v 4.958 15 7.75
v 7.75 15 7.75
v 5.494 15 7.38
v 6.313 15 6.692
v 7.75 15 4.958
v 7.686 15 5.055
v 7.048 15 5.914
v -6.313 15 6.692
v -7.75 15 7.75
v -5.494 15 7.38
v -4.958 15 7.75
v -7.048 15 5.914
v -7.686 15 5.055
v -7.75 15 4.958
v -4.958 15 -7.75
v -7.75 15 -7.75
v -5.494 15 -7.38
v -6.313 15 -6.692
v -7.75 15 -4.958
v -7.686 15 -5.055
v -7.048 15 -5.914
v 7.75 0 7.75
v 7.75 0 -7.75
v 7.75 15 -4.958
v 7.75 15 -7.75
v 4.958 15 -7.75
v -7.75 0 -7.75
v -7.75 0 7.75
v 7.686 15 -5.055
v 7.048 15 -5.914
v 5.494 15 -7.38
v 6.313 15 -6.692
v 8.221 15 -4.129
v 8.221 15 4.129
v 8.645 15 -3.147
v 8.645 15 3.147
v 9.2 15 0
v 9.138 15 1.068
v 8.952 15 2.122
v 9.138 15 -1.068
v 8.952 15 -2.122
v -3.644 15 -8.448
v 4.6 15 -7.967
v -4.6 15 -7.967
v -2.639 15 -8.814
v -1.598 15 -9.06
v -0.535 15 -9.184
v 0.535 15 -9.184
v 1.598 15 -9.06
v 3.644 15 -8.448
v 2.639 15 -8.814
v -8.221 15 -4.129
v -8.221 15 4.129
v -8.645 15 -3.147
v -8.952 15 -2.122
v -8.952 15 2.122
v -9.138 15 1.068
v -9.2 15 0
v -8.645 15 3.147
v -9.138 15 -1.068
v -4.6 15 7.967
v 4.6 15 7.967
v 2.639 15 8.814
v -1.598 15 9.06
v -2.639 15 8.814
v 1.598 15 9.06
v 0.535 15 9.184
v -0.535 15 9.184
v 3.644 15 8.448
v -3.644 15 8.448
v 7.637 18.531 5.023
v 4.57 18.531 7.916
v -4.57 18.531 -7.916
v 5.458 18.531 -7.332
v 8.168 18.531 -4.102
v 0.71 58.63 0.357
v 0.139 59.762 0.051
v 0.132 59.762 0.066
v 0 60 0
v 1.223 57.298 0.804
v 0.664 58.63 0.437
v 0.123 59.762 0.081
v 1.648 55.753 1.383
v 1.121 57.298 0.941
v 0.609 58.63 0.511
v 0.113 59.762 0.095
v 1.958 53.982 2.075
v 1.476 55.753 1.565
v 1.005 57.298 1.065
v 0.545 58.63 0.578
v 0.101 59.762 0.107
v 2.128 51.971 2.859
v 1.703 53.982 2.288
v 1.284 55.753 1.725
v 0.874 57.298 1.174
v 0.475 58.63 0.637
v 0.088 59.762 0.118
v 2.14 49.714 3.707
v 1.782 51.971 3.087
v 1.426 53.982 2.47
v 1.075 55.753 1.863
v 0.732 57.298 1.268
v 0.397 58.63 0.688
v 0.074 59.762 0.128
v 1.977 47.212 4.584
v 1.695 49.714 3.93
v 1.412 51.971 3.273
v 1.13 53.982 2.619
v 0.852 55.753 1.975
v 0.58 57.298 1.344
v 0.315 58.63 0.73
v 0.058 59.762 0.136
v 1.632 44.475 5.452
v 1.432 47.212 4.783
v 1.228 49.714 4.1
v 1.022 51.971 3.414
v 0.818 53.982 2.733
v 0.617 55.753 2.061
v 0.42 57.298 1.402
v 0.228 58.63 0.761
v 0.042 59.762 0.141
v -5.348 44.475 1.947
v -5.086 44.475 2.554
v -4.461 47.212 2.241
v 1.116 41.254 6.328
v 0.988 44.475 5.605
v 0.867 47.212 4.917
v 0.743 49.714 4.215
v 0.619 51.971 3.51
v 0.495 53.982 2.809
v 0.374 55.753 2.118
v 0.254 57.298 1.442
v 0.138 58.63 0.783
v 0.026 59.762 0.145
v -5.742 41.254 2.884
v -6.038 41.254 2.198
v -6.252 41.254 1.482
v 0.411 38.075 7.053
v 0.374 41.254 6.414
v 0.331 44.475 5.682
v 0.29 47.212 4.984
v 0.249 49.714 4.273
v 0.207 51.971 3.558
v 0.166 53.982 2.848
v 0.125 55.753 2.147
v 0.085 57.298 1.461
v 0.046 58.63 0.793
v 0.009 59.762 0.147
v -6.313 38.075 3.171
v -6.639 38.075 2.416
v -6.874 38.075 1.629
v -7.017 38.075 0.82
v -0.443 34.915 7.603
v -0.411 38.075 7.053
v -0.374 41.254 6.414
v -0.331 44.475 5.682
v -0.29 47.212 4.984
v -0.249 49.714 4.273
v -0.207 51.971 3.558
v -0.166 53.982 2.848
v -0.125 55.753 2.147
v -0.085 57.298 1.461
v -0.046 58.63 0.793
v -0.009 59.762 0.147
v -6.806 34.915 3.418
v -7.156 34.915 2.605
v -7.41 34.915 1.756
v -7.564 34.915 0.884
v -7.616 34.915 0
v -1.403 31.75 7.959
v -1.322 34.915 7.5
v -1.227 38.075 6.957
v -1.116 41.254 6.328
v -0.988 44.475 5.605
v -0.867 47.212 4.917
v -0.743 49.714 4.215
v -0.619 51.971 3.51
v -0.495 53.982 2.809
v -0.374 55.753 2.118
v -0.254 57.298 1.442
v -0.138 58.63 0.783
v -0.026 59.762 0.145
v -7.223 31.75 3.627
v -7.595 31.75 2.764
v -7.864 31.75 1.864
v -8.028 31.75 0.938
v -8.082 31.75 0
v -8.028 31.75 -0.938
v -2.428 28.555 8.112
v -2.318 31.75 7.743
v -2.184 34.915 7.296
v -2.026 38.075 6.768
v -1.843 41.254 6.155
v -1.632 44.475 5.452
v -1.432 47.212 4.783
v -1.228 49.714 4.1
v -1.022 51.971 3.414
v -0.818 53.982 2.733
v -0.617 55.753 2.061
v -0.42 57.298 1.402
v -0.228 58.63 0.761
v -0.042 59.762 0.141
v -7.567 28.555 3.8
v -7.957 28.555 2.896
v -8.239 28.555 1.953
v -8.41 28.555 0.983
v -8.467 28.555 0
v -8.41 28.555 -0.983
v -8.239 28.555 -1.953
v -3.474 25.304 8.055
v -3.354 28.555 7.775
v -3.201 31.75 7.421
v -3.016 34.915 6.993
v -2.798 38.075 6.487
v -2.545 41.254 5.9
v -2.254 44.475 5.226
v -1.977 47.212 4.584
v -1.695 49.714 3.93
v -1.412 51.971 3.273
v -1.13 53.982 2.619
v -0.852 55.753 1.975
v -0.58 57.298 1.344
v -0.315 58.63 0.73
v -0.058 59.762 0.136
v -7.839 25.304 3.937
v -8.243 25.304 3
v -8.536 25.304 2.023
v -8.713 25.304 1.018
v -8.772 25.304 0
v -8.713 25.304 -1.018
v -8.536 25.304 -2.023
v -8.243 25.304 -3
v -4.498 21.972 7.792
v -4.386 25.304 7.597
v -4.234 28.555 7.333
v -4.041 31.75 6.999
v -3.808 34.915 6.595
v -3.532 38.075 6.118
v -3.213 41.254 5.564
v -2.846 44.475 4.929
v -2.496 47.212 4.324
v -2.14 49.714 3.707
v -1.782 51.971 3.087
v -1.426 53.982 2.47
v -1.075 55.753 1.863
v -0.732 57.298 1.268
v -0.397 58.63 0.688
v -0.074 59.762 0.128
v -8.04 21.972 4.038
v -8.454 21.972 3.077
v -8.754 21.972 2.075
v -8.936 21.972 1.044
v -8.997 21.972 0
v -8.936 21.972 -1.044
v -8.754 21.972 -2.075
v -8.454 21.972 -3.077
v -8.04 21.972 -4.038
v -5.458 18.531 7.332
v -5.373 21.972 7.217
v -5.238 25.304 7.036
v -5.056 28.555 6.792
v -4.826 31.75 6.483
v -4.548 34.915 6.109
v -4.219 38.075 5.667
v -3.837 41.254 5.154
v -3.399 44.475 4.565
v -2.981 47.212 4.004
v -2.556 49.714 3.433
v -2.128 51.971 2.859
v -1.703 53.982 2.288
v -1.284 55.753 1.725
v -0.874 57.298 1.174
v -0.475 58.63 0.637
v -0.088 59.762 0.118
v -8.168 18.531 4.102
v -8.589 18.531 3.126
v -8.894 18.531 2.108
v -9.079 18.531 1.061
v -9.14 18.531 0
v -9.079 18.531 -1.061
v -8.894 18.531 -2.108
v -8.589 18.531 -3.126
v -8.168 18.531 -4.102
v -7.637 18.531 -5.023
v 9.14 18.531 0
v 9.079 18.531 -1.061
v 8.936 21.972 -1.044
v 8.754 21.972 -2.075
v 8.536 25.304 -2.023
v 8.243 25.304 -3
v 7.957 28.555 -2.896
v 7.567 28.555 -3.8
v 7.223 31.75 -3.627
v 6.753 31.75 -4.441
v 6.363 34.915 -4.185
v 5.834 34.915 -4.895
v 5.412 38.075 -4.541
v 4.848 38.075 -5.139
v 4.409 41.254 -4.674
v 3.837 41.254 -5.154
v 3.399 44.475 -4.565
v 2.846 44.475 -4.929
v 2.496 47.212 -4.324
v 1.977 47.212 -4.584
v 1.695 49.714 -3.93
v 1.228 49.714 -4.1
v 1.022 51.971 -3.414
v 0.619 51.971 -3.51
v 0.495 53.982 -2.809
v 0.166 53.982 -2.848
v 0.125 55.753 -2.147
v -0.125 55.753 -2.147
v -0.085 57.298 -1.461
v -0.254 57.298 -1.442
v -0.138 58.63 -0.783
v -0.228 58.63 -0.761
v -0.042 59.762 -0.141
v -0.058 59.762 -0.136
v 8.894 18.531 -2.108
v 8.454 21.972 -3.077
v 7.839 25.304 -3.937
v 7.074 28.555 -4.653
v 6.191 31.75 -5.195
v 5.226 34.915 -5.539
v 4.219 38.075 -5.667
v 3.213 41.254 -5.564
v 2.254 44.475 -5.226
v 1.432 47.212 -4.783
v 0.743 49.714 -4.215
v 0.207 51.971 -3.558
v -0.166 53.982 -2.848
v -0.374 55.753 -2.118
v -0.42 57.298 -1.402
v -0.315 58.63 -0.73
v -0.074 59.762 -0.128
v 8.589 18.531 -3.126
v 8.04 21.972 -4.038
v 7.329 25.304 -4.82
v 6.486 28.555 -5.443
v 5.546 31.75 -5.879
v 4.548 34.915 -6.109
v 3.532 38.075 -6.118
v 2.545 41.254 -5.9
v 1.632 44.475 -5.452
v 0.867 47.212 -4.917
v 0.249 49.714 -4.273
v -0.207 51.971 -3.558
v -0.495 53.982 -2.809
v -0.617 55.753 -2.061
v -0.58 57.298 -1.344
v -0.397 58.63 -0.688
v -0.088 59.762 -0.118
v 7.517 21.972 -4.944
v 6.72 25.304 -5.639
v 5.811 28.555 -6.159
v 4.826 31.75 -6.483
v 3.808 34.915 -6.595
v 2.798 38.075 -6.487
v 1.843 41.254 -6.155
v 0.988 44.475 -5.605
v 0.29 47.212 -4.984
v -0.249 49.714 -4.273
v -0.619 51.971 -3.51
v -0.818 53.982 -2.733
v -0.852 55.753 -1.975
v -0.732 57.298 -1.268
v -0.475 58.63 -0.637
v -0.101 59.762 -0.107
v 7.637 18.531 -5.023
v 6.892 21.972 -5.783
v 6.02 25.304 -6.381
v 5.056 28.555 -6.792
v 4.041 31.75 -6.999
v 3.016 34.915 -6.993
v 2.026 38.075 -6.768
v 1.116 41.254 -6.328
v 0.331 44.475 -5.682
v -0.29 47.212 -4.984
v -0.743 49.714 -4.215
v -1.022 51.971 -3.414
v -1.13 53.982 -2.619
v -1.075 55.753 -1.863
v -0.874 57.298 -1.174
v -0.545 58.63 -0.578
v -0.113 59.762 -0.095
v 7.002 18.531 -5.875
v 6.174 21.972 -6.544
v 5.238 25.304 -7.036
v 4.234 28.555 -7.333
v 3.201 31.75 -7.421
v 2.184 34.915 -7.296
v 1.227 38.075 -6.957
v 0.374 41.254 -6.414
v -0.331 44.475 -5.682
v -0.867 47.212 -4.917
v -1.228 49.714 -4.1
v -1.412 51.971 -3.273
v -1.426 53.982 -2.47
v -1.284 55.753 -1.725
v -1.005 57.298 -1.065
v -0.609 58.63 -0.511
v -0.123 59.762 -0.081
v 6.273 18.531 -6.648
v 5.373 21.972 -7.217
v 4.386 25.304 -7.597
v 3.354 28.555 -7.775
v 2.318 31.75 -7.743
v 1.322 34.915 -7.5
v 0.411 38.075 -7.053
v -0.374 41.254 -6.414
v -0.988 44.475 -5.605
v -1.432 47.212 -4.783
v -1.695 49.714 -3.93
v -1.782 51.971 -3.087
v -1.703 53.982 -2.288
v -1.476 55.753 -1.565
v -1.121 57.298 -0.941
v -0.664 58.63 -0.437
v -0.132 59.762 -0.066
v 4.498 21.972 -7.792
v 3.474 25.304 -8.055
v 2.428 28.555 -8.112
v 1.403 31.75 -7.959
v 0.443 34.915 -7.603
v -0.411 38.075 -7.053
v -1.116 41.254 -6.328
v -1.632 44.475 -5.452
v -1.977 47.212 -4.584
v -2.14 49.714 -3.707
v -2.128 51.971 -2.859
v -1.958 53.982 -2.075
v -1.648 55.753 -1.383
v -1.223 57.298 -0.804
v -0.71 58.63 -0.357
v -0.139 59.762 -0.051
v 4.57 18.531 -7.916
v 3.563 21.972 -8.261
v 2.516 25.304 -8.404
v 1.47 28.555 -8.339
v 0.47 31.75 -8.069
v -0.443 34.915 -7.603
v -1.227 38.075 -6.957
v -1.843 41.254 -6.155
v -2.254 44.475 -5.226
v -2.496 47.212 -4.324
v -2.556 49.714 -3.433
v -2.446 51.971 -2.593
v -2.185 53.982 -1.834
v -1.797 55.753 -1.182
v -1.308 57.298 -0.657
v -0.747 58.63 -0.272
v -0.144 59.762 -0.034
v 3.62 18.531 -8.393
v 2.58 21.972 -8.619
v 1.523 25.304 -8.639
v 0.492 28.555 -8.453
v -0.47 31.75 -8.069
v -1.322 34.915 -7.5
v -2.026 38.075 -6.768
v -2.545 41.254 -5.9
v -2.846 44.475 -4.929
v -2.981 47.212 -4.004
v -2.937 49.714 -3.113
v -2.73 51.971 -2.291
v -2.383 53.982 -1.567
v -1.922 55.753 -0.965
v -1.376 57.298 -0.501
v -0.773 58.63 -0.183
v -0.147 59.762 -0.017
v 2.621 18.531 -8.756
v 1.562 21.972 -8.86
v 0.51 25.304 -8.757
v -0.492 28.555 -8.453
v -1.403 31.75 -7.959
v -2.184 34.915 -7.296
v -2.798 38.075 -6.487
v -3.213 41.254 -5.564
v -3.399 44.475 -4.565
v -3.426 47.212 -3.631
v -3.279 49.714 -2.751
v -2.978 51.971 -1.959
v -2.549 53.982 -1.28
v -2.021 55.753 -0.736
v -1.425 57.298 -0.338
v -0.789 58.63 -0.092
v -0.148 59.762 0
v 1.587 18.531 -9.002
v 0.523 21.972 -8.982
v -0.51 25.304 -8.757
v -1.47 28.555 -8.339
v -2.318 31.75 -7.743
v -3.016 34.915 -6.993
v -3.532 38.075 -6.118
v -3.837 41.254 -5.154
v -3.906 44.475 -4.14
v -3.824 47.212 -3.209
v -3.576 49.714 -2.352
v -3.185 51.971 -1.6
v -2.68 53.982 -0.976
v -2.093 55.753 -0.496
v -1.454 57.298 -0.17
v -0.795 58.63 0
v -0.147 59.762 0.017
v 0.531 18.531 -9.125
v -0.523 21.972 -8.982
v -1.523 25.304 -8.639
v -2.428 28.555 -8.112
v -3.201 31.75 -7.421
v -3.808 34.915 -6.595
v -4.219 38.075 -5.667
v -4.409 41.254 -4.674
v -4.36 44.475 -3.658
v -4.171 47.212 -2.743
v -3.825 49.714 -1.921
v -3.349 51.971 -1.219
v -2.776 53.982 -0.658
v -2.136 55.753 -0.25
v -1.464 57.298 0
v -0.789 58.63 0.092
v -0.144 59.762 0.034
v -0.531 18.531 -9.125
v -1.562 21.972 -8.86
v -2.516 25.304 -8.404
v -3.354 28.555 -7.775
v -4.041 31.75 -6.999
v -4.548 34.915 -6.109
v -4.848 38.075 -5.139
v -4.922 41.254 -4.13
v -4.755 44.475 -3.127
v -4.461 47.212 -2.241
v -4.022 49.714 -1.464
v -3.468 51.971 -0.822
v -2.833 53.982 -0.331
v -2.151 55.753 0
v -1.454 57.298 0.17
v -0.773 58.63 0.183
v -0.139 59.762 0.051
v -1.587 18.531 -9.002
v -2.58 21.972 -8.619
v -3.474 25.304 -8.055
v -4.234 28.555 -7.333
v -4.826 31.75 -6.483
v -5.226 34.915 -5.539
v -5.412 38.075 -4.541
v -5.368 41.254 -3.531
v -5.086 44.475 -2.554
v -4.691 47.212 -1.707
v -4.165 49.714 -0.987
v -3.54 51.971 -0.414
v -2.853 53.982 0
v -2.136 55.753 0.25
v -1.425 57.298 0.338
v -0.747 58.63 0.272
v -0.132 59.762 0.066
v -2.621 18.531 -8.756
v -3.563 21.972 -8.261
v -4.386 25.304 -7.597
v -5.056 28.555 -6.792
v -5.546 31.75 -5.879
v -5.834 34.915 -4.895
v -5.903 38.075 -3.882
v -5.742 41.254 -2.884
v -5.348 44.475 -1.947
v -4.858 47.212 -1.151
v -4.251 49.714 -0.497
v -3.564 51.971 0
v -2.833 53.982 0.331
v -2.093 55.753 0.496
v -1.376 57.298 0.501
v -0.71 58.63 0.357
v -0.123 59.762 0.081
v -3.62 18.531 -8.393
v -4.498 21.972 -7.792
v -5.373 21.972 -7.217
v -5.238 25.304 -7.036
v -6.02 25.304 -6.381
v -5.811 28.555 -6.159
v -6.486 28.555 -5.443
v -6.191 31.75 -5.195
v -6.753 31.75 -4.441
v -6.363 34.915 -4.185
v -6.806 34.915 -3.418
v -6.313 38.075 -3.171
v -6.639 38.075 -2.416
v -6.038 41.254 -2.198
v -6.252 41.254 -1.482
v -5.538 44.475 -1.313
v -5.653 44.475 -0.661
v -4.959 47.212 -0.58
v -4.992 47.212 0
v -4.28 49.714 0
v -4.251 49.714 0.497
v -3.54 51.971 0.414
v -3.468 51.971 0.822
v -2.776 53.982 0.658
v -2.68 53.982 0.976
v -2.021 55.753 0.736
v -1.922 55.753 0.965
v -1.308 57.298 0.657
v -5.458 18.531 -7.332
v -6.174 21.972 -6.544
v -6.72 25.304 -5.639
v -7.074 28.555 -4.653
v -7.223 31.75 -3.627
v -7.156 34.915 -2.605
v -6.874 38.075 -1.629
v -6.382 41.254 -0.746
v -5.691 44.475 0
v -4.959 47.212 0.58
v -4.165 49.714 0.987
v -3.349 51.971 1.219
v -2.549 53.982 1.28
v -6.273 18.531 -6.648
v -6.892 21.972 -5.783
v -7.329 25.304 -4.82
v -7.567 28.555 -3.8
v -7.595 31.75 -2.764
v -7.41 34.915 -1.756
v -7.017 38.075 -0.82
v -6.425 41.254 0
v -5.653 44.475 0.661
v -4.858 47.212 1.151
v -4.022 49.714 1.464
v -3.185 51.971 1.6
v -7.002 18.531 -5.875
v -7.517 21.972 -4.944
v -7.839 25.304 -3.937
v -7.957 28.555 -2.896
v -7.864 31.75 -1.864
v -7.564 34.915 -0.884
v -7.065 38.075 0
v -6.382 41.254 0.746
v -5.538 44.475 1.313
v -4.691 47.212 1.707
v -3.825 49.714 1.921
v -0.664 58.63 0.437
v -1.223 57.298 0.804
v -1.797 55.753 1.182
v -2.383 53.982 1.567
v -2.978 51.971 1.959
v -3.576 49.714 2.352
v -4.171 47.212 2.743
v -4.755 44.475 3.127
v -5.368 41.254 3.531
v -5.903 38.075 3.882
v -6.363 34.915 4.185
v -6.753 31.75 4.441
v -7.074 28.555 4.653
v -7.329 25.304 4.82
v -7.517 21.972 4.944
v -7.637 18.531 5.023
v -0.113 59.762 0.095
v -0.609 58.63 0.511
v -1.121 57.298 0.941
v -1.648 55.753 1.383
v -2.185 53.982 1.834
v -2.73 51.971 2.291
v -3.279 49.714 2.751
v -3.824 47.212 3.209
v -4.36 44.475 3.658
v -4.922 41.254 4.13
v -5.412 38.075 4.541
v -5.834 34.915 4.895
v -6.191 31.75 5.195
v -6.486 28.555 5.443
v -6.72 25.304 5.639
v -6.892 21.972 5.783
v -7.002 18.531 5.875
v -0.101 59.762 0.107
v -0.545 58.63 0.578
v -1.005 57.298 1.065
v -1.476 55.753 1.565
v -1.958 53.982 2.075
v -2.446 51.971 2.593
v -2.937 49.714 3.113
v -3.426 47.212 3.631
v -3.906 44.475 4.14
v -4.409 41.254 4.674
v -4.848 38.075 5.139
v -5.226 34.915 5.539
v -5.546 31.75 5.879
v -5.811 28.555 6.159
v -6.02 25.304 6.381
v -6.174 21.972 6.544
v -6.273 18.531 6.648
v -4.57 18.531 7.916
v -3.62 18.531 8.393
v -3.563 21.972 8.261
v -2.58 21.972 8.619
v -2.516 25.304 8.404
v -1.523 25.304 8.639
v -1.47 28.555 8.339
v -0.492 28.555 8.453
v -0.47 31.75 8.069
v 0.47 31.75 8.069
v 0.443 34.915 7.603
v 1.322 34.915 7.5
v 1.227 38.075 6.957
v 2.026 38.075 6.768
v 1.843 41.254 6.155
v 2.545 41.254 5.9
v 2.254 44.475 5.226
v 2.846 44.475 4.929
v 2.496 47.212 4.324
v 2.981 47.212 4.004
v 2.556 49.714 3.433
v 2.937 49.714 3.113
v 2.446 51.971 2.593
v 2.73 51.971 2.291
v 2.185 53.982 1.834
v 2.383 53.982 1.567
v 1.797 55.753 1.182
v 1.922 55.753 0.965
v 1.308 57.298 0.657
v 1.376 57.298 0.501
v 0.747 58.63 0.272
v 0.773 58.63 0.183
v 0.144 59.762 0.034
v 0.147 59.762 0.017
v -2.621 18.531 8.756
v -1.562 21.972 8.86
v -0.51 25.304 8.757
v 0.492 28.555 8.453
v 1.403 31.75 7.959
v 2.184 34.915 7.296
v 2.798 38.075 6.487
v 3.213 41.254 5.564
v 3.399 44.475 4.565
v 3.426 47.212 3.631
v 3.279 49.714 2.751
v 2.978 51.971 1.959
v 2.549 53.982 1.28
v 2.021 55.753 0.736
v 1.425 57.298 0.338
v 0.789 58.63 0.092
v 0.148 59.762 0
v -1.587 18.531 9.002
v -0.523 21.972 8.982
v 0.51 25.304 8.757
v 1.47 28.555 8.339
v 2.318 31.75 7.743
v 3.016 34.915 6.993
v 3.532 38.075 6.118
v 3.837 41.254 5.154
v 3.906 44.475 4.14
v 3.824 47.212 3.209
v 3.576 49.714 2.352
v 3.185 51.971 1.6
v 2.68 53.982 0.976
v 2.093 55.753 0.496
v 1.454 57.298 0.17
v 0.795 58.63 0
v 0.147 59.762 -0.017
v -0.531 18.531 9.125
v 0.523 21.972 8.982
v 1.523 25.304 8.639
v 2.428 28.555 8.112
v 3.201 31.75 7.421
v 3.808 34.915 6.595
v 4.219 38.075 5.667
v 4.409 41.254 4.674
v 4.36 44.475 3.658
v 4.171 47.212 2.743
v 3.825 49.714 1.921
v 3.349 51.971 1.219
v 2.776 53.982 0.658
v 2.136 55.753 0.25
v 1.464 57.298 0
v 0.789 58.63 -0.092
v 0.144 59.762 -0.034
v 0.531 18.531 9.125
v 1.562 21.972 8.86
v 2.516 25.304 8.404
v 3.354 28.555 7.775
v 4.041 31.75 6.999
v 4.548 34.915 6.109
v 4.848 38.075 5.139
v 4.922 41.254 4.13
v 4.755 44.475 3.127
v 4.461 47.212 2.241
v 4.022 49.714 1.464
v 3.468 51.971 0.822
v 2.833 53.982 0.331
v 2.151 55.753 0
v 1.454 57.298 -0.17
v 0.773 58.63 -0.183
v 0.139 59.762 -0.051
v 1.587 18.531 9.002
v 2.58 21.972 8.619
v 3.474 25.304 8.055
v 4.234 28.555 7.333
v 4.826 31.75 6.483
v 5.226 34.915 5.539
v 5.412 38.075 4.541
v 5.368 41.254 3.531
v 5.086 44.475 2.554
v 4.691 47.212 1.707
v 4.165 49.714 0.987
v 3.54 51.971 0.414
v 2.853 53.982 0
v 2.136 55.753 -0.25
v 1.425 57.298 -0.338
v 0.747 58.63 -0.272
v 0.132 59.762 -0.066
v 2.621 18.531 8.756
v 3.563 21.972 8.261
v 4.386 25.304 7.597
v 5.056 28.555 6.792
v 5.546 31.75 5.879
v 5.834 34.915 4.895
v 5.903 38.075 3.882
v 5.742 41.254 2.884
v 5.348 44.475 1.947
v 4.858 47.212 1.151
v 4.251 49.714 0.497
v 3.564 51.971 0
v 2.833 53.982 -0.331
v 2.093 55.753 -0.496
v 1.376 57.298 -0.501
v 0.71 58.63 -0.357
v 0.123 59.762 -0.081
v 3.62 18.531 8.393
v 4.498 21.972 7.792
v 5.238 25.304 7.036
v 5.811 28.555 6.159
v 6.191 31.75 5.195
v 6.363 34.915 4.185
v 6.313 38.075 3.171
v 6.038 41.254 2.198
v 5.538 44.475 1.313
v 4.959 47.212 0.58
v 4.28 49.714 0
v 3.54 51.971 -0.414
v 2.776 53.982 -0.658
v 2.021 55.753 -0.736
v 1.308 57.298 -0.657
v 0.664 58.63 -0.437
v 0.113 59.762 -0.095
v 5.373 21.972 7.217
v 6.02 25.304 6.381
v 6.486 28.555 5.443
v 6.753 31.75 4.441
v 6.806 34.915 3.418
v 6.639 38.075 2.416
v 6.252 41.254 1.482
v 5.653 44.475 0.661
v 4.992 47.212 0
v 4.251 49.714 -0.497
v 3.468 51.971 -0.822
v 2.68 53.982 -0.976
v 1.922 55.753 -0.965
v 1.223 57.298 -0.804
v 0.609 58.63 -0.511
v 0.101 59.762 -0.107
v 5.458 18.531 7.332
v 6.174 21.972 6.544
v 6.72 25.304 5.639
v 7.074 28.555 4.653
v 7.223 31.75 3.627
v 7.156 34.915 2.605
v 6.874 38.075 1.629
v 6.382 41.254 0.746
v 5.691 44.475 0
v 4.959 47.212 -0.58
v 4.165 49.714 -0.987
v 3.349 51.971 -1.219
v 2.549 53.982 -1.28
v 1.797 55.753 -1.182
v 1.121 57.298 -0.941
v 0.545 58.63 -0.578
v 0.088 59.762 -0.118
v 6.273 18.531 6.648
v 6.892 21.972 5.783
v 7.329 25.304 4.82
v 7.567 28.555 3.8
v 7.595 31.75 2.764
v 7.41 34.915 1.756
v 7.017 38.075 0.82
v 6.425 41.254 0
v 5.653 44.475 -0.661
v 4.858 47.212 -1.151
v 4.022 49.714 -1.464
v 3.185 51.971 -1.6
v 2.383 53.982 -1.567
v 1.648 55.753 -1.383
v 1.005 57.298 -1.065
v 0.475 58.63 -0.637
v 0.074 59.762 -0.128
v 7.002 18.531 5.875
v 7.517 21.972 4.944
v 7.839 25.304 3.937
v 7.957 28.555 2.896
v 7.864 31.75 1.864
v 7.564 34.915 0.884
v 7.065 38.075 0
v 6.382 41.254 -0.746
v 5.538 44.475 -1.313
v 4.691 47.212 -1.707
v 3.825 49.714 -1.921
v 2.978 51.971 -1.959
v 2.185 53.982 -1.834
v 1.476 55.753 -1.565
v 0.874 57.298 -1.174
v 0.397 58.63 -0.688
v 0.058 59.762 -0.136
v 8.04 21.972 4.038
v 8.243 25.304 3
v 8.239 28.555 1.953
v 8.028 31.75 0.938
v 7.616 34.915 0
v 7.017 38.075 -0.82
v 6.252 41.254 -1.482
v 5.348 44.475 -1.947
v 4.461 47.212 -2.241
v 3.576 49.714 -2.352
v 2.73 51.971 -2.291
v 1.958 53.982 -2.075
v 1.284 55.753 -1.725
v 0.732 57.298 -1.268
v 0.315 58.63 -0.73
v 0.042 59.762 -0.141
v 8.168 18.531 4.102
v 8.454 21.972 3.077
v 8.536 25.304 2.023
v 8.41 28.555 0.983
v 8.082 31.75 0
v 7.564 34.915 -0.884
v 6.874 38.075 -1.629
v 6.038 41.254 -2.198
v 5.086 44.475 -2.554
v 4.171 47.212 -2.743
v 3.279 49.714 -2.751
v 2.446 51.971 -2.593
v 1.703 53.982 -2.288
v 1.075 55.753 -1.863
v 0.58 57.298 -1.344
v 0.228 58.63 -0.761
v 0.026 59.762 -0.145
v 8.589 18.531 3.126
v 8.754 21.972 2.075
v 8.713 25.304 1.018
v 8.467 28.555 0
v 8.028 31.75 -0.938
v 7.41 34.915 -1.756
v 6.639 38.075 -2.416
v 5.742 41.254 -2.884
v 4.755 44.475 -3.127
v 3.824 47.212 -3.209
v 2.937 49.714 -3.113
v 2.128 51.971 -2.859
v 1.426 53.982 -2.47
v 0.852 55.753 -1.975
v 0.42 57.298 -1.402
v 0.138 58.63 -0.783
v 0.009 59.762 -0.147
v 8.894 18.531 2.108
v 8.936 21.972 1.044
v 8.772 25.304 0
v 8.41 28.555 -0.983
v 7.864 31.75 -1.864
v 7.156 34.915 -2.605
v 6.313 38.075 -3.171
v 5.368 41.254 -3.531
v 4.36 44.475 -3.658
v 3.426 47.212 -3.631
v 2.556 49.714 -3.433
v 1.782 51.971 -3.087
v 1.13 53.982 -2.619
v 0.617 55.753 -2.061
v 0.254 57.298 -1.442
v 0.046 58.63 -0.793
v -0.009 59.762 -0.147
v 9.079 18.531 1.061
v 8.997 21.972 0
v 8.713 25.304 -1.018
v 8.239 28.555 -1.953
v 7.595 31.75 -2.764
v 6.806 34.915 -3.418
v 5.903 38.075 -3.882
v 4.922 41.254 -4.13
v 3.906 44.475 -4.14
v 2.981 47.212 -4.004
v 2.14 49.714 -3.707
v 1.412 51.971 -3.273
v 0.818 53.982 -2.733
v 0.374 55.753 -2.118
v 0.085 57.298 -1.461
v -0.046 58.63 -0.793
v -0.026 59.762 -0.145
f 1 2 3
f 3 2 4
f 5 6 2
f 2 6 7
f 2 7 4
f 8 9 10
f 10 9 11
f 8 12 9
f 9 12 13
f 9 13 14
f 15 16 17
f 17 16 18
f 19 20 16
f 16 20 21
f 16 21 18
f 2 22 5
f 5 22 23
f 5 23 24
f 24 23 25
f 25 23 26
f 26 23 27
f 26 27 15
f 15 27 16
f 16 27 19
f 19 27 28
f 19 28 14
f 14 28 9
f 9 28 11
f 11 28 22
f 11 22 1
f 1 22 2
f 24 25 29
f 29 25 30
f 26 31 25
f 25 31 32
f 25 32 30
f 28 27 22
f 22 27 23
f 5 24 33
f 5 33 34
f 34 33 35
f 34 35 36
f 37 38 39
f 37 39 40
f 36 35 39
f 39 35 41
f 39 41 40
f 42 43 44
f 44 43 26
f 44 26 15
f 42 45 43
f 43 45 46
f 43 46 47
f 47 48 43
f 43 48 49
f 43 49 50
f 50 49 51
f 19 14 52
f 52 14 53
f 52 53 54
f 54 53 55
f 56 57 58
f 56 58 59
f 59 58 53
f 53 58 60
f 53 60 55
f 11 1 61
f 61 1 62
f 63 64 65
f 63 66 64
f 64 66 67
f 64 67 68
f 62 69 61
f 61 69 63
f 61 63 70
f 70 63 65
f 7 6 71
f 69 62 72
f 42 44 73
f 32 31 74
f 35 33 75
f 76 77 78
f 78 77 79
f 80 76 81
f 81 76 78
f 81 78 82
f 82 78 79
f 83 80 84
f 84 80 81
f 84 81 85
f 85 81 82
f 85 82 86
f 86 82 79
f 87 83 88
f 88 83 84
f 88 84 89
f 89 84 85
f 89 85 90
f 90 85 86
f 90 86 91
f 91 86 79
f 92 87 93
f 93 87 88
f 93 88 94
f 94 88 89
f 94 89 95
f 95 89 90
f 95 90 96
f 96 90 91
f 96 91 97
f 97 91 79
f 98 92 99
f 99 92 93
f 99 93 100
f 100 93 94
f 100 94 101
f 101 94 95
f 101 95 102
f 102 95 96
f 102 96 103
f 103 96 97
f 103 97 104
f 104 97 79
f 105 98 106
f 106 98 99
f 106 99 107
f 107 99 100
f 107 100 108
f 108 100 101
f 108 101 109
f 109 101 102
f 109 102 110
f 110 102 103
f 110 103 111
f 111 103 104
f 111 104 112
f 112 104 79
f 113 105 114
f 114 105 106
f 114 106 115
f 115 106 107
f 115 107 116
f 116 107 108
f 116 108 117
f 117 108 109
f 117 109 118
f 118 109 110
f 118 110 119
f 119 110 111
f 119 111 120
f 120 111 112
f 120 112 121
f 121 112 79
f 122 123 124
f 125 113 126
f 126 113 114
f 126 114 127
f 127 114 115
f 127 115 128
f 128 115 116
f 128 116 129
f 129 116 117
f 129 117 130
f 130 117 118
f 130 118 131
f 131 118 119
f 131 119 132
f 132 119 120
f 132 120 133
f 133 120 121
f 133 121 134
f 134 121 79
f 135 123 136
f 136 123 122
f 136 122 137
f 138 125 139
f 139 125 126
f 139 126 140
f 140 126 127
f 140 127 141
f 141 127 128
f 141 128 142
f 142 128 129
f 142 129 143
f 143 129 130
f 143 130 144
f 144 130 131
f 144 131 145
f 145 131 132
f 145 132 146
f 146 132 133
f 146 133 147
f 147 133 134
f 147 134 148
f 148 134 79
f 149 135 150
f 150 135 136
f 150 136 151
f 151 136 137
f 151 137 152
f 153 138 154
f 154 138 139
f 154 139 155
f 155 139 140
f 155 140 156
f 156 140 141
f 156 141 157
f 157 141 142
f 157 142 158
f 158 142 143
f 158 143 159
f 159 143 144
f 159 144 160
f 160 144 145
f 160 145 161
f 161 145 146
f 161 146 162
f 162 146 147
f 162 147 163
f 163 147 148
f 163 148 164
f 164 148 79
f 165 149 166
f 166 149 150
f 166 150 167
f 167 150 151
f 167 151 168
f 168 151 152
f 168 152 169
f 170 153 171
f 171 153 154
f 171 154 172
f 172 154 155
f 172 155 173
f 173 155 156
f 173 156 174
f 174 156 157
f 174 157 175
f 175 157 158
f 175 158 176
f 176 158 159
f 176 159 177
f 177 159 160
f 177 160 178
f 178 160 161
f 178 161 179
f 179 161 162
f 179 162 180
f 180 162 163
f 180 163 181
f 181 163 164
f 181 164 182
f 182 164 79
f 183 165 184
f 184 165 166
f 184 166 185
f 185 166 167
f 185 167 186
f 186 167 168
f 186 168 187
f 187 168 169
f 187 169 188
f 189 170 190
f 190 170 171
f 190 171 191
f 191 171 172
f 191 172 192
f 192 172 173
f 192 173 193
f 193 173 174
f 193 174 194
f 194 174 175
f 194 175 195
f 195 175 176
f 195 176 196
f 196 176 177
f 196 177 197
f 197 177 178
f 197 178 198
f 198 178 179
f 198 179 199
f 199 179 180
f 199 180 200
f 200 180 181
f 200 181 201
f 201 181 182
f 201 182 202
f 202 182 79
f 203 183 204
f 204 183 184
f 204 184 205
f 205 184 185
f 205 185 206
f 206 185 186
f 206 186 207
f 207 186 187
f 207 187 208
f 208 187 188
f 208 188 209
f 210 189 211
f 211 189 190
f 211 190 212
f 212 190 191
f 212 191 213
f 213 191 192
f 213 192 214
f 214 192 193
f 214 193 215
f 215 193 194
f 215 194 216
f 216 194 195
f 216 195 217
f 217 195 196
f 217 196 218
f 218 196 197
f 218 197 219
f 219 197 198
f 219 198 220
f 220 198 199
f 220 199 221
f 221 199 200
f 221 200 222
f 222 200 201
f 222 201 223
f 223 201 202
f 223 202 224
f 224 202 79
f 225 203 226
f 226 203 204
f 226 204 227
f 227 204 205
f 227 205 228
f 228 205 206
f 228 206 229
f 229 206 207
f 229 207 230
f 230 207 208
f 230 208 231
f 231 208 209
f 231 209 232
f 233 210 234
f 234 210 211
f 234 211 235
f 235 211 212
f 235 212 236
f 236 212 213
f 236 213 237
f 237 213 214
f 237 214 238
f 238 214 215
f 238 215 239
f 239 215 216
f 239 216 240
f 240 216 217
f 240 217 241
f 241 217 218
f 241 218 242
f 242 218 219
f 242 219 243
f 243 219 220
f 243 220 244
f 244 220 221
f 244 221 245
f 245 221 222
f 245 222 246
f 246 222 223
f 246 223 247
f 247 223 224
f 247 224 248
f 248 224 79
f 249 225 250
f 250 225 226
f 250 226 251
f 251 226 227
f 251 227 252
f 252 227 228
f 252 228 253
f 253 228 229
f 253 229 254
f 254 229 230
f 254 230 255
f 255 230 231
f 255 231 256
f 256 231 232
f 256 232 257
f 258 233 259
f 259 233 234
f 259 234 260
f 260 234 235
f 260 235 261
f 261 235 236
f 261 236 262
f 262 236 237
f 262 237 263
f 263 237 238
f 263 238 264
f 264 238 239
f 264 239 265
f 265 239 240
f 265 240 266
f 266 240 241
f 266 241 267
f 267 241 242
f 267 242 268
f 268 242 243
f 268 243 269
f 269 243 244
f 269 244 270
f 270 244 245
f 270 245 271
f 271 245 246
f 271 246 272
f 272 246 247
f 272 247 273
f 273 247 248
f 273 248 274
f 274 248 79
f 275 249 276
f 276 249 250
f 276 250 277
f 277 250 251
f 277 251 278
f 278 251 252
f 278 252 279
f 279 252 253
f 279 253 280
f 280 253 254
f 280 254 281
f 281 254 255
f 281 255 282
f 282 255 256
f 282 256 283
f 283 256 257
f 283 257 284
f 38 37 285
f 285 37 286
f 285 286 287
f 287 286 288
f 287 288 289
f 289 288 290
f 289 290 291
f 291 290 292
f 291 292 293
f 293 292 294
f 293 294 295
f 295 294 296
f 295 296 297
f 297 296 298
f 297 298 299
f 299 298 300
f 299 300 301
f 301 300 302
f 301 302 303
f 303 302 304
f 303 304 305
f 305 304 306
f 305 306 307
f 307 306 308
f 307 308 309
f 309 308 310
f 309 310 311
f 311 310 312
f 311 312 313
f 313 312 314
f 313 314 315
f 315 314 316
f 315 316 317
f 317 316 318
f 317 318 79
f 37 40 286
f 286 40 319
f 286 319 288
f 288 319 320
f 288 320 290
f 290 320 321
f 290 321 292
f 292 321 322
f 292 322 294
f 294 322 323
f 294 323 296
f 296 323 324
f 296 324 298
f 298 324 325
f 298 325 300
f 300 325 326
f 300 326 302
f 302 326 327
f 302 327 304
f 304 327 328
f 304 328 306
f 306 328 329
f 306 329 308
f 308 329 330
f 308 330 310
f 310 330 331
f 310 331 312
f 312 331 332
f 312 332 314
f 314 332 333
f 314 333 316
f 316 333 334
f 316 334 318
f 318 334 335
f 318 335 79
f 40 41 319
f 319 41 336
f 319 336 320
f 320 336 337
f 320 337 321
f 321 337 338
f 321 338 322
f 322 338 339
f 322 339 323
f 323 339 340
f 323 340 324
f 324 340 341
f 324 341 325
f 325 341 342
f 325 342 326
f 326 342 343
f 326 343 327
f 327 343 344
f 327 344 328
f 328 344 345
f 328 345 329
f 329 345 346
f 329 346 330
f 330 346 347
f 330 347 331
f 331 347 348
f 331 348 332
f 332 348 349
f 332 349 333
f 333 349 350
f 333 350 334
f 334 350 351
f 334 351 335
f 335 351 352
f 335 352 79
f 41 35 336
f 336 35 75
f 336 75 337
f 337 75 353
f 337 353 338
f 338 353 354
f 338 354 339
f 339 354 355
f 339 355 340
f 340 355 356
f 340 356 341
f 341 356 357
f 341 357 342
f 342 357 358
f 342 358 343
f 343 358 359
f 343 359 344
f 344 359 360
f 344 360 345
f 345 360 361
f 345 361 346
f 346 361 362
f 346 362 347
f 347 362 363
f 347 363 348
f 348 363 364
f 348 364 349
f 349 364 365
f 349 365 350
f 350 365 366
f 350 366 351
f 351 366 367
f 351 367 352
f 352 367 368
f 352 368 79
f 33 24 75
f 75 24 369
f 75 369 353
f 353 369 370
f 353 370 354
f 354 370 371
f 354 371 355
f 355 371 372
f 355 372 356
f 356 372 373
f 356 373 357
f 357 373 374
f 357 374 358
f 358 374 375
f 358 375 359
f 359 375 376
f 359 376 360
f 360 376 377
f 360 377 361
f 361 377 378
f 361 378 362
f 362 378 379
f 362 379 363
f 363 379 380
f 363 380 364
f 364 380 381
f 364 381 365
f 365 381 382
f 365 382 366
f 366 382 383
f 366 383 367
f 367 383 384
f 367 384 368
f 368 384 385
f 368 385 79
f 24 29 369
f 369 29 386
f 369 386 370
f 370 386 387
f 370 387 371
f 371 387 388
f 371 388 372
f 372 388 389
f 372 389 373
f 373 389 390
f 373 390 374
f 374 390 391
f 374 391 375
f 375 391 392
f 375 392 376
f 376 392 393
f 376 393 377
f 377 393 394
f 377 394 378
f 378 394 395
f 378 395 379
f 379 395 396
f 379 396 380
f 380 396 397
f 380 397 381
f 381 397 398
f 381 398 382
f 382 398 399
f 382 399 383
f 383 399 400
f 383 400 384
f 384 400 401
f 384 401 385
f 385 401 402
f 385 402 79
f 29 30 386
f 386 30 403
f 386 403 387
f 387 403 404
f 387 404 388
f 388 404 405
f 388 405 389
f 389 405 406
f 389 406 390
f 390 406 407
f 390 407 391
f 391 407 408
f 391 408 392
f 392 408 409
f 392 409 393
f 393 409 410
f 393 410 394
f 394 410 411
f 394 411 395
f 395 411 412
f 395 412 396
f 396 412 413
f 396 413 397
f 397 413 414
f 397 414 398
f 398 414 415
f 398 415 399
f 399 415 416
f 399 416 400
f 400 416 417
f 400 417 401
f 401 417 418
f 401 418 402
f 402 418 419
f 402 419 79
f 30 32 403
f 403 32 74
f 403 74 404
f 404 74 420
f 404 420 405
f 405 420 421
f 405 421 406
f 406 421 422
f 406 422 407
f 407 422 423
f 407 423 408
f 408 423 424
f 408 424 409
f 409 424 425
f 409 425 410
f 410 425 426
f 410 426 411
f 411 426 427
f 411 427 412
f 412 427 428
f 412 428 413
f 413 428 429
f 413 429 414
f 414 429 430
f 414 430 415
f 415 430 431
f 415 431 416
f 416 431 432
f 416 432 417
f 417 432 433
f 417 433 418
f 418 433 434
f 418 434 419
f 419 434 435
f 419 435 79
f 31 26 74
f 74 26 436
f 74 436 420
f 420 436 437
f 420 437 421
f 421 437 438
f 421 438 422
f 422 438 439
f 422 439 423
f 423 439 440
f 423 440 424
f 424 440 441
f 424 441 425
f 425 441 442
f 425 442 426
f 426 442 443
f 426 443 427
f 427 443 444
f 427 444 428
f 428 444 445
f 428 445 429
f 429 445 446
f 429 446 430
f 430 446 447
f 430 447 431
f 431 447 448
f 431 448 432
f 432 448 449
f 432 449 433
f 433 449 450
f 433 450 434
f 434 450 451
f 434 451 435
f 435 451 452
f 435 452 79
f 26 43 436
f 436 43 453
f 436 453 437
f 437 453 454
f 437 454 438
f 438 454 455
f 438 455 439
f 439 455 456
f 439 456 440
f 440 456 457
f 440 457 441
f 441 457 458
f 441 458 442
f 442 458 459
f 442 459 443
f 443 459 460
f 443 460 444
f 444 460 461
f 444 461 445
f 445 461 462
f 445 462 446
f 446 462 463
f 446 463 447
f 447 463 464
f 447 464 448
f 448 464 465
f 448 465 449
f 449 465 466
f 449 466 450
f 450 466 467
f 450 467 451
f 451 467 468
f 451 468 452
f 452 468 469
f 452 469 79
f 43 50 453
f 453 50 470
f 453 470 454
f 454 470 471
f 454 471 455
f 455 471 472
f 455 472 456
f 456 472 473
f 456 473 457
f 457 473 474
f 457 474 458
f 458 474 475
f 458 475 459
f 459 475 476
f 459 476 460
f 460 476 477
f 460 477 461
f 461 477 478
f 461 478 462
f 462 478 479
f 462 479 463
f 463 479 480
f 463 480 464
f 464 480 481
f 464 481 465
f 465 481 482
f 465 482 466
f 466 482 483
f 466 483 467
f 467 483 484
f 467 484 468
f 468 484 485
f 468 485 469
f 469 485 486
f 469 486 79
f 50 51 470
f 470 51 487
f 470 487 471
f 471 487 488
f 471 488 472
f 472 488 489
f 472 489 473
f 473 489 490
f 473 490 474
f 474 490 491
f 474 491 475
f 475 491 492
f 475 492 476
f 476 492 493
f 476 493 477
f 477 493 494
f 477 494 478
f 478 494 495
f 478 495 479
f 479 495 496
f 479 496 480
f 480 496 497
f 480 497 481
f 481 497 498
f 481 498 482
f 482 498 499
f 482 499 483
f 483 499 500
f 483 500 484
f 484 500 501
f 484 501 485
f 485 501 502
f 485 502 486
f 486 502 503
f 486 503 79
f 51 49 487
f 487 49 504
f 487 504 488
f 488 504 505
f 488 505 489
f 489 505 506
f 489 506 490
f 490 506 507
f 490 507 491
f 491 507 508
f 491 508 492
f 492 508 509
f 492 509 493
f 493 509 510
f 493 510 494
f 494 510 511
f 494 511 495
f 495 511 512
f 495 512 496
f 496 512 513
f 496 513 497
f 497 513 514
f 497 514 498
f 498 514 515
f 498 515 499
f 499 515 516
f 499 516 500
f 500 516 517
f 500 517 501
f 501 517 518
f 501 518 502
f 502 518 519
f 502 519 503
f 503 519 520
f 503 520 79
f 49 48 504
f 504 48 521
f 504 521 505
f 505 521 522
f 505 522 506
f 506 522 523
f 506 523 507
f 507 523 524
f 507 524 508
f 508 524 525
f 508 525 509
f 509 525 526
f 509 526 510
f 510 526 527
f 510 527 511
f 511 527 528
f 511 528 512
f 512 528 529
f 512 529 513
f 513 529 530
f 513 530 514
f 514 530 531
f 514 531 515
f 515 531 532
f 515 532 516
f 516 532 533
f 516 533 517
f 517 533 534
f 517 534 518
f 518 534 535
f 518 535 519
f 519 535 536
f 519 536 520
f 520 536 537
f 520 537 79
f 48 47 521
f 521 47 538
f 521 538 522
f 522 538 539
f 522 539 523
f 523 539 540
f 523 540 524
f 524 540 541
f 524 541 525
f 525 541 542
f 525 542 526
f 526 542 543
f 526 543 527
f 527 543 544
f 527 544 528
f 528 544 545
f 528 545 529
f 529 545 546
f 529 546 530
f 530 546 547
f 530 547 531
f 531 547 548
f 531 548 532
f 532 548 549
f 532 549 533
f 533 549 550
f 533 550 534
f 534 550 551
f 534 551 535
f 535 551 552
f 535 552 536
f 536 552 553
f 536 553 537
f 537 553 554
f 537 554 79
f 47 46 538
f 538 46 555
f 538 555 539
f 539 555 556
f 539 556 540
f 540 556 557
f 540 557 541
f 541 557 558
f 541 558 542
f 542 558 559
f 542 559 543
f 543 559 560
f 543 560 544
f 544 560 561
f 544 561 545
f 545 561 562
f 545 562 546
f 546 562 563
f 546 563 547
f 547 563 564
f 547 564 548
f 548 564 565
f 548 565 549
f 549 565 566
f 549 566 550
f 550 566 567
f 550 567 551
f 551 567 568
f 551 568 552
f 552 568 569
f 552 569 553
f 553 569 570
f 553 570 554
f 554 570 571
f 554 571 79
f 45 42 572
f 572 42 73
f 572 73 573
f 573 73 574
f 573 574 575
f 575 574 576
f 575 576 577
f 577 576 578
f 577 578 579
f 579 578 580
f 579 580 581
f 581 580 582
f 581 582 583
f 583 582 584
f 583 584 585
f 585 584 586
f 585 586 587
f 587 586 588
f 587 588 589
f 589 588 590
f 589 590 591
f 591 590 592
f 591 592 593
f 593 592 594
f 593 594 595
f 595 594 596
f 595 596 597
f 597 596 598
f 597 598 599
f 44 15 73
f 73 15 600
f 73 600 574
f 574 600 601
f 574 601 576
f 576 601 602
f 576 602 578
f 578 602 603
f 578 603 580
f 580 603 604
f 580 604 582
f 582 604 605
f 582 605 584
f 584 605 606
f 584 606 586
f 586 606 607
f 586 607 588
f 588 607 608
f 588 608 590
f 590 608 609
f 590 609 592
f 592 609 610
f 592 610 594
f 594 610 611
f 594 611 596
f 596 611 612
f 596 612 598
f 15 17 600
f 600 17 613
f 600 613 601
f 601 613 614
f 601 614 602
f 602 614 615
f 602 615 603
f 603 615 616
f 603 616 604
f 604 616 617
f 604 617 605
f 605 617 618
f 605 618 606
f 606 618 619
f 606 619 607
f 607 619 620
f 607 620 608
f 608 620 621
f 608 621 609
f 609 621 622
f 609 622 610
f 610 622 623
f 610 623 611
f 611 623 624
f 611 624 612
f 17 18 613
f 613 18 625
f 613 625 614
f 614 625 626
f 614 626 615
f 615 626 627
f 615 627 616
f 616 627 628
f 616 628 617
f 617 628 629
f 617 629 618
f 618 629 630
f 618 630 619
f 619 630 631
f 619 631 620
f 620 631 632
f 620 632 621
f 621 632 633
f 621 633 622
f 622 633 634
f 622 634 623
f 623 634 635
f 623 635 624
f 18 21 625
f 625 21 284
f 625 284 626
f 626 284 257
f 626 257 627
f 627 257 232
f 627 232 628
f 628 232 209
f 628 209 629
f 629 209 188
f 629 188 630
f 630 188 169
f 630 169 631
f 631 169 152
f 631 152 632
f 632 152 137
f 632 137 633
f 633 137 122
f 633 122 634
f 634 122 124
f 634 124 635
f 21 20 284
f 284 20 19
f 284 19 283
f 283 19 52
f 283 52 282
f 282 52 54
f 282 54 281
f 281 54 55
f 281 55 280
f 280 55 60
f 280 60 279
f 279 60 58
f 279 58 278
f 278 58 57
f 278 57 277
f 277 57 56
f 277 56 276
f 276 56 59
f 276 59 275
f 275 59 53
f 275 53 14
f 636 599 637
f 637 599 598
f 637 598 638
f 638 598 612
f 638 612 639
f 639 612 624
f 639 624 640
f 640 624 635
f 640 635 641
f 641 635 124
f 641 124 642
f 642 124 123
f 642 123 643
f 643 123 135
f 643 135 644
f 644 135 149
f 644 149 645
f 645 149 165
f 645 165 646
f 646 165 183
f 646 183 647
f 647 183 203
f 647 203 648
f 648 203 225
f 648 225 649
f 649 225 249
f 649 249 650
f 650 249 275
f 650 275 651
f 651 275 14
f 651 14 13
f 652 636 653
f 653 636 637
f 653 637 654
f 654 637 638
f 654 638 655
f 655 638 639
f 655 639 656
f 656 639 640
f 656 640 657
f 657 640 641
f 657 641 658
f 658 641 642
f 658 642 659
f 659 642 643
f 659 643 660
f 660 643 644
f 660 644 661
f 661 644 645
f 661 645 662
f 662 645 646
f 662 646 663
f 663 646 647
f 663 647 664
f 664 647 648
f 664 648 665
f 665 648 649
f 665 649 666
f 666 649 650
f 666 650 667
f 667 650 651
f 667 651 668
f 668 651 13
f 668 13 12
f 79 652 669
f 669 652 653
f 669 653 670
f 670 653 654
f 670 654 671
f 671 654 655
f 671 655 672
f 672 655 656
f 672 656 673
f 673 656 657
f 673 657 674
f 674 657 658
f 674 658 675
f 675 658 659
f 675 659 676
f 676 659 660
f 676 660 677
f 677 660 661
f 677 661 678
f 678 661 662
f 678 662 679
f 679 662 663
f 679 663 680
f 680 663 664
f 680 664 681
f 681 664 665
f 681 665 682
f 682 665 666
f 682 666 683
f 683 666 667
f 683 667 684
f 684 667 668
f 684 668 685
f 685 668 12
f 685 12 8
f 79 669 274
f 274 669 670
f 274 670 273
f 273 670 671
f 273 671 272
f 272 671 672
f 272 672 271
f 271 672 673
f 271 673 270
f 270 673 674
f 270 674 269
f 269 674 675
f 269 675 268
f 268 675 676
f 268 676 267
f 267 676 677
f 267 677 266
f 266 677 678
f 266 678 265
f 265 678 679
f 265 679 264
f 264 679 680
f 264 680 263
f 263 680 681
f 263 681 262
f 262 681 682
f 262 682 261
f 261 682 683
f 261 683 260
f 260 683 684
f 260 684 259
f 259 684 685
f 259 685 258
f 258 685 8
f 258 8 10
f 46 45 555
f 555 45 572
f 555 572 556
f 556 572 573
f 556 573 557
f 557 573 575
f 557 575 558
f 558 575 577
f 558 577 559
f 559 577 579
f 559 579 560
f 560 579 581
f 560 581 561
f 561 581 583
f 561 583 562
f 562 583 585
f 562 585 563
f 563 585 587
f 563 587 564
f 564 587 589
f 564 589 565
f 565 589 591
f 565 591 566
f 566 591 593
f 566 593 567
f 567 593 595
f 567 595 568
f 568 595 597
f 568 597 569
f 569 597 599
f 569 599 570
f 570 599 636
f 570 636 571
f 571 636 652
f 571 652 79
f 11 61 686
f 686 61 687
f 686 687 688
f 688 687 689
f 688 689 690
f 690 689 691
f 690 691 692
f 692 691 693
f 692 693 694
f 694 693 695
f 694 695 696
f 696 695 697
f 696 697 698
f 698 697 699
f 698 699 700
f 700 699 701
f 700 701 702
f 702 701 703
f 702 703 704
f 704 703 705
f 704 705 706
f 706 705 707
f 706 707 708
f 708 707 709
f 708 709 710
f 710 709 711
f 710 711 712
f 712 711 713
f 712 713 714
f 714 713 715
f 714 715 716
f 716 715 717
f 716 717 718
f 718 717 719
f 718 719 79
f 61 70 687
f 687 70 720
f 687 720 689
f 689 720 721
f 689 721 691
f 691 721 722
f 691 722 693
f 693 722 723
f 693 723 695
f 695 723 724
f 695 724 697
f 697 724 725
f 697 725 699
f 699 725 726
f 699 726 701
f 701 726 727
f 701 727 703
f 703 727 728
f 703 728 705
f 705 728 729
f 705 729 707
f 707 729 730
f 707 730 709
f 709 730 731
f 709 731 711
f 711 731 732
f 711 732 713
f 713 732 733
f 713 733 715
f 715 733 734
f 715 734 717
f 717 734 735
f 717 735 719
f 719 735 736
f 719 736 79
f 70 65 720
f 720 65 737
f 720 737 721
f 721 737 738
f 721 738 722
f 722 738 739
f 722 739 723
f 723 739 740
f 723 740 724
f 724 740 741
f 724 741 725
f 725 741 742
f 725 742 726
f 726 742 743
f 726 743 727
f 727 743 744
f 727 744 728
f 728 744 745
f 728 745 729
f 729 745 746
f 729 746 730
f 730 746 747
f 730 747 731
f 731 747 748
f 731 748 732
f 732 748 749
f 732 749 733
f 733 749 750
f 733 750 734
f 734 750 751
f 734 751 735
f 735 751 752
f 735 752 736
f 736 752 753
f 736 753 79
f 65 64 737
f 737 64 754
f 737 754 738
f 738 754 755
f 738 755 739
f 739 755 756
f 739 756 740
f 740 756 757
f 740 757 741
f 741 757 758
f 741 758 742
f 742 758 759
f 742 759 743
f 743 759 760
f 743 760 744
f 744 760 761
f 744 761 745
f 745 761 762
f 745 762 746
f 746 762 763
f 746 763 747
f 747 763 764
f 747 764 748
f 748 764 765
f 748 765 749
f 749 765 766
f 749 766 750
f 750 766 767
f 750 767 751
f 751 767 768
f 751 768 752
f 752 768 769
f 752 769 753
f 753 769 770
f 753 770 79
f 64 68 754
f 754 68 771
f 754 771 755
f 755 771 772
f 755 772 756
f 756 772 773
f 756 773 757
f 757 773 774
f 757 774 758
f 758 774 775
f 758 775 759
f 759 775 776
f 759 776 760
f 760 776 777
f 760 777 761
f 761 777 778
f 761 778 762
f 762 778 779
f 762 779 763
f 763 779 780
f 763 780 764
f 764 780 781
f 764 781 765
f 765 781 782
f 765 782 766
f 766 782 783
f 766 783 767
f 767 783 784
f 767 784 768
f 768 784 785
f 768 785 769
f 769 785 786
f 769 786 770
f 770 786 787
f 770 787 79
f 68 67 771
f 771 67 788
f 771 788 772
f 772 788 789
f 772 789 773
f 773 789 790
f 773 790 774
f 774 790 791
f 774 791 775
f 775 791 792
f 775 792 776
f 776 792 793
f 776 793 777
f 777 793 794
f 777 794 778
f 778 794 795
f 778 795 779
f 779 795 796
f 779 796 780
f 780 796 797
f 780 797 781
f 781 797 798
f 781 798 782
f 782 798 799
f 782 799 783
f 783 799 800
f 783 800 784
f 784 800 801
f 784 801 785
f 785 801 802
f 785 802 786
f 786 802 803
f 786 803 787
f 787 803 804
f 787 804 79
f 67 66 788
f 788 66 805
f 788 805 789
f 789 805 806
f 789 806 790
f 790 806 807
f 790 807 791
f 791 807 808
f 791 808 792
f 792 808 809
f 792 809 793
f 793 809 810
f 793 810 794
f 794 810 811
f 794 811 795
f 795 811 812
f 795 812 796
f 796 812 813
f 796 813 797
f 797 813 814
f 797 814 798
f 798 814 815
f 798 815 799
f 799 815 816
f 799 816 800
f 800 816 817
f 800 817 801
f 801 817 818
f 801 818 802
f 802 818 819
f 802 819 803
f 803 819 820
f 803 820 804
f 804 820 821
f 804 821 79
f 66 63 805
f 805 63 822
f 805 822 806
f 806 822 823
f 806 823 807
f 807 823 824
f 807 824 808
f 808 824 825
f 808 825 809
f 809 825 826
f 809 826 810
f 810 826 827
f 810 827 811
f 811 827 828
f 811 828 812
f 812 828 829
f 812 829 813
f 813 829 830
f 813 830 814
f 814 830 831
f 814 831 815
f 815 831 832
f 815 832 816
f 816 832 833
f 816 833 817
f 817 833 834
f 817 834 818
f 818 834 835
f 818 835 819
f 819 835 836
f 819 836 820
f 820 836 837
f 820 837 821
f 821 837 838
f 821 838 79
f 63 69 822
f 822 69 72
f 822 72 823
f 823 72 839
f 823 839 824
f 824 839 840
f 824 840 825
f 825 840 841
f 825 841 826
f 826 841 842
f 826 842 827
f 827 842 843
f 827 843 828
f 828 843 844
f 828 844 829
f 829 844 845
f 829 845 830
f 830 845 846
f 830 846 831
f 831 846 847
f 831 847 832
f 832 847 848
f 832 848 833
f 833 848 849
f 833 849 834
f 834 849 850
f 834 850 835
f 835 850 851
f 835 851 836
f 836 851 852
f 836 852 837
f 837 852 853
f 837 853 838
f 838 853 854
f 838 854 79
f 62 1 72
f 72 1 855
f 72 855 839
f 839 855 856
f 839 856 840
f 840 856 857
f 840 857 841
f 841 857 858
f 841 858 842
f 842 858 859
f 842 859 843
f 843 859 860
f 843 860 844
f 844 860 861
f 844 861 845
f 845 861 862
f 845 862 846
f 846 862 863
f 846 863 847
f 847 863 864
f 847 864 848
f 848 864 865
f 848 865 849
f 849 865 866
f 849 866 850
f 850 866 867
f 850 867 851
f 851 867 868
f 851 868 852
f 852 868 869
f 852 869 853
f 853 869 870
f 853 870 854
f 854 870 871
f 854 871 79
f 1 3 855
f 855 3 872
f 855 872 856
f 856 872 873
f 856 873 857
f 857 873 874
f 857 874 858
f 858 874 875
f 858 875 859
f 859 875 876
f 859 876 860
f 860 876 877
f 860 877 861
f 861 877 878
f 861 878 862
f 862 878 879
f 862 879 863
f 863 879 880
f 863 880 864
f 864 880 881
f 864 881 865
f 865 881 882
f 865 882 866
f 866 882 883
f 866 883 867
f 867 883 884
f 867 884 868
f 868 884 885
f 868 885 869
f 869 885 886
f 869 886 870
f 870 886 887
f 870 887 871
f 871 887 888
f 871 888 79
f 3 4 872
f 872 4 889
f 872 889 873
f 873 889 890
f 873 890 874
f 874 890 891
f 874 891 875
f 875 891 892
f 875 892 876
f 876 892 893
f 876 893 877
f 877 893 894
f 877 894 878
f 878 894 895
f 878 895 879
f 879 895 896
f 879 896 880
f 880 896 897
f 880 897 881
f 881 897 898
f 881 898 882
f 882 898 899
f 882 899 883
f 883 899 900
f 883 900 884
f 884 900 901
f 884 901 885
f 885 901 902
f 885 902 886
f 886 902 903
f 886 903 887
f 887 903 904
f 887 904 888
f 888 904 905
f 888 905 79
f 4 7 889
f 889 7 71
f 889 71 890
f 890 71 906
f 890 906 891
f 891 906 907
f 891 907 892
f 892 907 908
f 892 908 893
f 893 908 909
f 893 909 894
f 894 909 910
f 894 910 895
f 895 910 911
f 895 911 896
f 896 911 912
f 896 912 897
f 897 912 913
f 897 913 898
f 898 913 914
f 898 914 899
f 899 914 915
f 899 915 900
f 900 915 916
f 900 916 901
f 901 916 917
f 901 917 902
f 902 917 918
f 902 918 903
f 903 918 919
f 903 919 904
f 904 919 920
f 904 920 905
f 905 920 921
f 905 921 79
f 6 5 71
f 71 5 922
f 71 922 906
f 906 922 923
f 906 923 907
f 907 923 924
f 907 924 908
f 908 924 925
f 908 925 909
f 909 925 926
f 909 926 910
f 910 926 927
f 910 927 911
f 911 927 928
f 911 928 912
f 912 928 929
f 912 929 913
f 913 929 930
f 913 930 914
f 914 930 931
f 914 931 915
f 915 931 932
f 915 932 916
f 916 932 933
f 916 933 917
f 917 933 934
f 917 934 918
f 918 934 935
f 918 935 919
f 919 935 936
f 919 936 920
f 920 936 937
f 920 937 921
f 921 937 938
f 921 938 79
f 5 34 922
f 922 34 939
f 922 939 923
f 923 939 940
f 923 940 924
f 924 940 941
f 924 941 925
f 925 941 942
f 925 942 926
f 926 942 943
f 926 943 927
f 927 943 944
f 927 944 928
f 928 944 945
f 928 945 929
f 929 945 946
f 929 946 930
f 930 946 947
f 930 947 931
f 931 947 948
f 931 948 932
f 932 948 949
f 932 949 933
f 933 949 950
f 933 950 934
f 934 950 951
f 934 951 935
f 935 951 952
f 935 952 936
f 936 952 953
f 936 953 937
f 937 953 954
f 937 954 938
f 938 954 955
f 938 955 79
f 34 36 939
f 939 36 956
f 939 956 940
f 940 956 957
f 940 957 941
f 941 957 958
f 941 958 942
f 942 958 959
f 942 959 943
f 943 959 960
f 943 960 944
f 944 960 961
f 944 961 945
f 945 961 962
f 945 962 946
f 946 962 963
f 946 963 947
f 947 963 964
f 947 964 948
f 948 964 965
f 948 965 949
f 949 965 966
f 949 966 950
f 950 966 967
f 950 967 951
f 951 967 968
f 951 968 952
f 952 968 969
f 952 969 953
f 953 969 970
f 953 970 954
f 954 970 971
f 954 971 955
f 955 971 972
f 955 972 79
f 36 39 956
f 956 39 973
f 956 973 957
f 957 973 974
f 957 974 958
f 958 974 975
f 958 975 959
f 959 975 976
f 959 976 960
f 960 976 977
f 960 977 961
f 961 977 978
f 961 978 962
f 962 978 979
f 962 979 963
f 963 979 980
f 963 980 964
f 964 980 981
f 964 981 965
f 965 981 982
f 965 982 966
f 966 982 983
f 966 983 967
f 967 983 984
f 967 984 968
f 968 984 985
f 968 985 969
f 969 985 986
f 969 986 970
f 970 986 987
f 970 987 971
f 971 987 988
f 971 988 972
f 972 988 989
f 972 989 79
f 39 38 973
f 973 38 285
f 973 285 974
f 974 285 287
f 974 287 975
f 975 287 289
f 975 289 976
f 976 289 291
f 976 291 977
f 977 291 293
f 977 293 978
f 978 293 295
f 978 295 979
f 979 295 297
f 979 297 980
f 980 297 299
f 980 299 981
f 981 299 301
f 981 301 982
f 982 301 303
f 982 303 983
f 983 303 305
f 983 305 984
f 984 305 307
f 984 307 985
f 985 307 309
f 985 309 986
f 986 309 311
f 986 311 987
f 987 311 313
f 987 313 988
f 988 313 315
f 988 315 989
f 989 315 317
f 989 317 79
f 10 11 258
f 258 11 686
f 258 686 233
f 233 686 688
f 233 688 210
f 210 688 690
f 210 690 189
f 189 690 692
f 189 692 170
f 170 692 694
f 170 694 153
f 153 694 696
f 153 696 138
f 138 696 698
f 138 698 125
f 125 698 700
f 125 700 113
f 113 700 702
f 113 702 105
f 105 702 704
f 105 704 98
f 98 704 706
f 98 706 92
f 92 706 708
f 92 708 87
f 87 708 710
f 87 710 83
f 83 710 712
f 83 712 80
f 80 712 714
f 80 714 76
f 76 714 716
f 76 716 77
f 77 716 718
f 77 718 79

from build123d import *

# Parameters (mm, degrees)
SKETCH1_W           = 15.5
SKETCH1_H           = 15.5
BOSS_EXTRUDE1_DEPTH = 15


with BuildPart() as part:
    # Sketch1 → Boss-Extrude1 (new body)
    with BuildSketch(Plane(origin=(0, 0, 0), x_dir=(1, 0, 0), z_dir=(0, 1, 0))):
        Rectangle(SKETCH1_W, SKETCH1_H)
    extrude(amount=BOSS_EXTRUDE1_DEPTH)

    # Sketch4 → Revolve5 (revolve)
    with BuildSketch(Plane.XY):
        with BuildLine():
            Line((9.2, 15), (0, 15))
            Line((0, 15), (0, 60))
            add(Edge.make_bspline(
                [(9.2, 15), (9.152248995, 24.690987366), (8.00981737, 34.882517262), (4.24723587, 50.506815958), (2.016778071, 56.805895624), (0, 60)],
                knots=[0, 0, 0, 0, 0.565414982, 0.665414982, 1, 1, 1, 1], degree=3))
        make_face()
    revolve(axis=Axis((0, 15, 0), (0, 1, 0)))


solid = part.part
